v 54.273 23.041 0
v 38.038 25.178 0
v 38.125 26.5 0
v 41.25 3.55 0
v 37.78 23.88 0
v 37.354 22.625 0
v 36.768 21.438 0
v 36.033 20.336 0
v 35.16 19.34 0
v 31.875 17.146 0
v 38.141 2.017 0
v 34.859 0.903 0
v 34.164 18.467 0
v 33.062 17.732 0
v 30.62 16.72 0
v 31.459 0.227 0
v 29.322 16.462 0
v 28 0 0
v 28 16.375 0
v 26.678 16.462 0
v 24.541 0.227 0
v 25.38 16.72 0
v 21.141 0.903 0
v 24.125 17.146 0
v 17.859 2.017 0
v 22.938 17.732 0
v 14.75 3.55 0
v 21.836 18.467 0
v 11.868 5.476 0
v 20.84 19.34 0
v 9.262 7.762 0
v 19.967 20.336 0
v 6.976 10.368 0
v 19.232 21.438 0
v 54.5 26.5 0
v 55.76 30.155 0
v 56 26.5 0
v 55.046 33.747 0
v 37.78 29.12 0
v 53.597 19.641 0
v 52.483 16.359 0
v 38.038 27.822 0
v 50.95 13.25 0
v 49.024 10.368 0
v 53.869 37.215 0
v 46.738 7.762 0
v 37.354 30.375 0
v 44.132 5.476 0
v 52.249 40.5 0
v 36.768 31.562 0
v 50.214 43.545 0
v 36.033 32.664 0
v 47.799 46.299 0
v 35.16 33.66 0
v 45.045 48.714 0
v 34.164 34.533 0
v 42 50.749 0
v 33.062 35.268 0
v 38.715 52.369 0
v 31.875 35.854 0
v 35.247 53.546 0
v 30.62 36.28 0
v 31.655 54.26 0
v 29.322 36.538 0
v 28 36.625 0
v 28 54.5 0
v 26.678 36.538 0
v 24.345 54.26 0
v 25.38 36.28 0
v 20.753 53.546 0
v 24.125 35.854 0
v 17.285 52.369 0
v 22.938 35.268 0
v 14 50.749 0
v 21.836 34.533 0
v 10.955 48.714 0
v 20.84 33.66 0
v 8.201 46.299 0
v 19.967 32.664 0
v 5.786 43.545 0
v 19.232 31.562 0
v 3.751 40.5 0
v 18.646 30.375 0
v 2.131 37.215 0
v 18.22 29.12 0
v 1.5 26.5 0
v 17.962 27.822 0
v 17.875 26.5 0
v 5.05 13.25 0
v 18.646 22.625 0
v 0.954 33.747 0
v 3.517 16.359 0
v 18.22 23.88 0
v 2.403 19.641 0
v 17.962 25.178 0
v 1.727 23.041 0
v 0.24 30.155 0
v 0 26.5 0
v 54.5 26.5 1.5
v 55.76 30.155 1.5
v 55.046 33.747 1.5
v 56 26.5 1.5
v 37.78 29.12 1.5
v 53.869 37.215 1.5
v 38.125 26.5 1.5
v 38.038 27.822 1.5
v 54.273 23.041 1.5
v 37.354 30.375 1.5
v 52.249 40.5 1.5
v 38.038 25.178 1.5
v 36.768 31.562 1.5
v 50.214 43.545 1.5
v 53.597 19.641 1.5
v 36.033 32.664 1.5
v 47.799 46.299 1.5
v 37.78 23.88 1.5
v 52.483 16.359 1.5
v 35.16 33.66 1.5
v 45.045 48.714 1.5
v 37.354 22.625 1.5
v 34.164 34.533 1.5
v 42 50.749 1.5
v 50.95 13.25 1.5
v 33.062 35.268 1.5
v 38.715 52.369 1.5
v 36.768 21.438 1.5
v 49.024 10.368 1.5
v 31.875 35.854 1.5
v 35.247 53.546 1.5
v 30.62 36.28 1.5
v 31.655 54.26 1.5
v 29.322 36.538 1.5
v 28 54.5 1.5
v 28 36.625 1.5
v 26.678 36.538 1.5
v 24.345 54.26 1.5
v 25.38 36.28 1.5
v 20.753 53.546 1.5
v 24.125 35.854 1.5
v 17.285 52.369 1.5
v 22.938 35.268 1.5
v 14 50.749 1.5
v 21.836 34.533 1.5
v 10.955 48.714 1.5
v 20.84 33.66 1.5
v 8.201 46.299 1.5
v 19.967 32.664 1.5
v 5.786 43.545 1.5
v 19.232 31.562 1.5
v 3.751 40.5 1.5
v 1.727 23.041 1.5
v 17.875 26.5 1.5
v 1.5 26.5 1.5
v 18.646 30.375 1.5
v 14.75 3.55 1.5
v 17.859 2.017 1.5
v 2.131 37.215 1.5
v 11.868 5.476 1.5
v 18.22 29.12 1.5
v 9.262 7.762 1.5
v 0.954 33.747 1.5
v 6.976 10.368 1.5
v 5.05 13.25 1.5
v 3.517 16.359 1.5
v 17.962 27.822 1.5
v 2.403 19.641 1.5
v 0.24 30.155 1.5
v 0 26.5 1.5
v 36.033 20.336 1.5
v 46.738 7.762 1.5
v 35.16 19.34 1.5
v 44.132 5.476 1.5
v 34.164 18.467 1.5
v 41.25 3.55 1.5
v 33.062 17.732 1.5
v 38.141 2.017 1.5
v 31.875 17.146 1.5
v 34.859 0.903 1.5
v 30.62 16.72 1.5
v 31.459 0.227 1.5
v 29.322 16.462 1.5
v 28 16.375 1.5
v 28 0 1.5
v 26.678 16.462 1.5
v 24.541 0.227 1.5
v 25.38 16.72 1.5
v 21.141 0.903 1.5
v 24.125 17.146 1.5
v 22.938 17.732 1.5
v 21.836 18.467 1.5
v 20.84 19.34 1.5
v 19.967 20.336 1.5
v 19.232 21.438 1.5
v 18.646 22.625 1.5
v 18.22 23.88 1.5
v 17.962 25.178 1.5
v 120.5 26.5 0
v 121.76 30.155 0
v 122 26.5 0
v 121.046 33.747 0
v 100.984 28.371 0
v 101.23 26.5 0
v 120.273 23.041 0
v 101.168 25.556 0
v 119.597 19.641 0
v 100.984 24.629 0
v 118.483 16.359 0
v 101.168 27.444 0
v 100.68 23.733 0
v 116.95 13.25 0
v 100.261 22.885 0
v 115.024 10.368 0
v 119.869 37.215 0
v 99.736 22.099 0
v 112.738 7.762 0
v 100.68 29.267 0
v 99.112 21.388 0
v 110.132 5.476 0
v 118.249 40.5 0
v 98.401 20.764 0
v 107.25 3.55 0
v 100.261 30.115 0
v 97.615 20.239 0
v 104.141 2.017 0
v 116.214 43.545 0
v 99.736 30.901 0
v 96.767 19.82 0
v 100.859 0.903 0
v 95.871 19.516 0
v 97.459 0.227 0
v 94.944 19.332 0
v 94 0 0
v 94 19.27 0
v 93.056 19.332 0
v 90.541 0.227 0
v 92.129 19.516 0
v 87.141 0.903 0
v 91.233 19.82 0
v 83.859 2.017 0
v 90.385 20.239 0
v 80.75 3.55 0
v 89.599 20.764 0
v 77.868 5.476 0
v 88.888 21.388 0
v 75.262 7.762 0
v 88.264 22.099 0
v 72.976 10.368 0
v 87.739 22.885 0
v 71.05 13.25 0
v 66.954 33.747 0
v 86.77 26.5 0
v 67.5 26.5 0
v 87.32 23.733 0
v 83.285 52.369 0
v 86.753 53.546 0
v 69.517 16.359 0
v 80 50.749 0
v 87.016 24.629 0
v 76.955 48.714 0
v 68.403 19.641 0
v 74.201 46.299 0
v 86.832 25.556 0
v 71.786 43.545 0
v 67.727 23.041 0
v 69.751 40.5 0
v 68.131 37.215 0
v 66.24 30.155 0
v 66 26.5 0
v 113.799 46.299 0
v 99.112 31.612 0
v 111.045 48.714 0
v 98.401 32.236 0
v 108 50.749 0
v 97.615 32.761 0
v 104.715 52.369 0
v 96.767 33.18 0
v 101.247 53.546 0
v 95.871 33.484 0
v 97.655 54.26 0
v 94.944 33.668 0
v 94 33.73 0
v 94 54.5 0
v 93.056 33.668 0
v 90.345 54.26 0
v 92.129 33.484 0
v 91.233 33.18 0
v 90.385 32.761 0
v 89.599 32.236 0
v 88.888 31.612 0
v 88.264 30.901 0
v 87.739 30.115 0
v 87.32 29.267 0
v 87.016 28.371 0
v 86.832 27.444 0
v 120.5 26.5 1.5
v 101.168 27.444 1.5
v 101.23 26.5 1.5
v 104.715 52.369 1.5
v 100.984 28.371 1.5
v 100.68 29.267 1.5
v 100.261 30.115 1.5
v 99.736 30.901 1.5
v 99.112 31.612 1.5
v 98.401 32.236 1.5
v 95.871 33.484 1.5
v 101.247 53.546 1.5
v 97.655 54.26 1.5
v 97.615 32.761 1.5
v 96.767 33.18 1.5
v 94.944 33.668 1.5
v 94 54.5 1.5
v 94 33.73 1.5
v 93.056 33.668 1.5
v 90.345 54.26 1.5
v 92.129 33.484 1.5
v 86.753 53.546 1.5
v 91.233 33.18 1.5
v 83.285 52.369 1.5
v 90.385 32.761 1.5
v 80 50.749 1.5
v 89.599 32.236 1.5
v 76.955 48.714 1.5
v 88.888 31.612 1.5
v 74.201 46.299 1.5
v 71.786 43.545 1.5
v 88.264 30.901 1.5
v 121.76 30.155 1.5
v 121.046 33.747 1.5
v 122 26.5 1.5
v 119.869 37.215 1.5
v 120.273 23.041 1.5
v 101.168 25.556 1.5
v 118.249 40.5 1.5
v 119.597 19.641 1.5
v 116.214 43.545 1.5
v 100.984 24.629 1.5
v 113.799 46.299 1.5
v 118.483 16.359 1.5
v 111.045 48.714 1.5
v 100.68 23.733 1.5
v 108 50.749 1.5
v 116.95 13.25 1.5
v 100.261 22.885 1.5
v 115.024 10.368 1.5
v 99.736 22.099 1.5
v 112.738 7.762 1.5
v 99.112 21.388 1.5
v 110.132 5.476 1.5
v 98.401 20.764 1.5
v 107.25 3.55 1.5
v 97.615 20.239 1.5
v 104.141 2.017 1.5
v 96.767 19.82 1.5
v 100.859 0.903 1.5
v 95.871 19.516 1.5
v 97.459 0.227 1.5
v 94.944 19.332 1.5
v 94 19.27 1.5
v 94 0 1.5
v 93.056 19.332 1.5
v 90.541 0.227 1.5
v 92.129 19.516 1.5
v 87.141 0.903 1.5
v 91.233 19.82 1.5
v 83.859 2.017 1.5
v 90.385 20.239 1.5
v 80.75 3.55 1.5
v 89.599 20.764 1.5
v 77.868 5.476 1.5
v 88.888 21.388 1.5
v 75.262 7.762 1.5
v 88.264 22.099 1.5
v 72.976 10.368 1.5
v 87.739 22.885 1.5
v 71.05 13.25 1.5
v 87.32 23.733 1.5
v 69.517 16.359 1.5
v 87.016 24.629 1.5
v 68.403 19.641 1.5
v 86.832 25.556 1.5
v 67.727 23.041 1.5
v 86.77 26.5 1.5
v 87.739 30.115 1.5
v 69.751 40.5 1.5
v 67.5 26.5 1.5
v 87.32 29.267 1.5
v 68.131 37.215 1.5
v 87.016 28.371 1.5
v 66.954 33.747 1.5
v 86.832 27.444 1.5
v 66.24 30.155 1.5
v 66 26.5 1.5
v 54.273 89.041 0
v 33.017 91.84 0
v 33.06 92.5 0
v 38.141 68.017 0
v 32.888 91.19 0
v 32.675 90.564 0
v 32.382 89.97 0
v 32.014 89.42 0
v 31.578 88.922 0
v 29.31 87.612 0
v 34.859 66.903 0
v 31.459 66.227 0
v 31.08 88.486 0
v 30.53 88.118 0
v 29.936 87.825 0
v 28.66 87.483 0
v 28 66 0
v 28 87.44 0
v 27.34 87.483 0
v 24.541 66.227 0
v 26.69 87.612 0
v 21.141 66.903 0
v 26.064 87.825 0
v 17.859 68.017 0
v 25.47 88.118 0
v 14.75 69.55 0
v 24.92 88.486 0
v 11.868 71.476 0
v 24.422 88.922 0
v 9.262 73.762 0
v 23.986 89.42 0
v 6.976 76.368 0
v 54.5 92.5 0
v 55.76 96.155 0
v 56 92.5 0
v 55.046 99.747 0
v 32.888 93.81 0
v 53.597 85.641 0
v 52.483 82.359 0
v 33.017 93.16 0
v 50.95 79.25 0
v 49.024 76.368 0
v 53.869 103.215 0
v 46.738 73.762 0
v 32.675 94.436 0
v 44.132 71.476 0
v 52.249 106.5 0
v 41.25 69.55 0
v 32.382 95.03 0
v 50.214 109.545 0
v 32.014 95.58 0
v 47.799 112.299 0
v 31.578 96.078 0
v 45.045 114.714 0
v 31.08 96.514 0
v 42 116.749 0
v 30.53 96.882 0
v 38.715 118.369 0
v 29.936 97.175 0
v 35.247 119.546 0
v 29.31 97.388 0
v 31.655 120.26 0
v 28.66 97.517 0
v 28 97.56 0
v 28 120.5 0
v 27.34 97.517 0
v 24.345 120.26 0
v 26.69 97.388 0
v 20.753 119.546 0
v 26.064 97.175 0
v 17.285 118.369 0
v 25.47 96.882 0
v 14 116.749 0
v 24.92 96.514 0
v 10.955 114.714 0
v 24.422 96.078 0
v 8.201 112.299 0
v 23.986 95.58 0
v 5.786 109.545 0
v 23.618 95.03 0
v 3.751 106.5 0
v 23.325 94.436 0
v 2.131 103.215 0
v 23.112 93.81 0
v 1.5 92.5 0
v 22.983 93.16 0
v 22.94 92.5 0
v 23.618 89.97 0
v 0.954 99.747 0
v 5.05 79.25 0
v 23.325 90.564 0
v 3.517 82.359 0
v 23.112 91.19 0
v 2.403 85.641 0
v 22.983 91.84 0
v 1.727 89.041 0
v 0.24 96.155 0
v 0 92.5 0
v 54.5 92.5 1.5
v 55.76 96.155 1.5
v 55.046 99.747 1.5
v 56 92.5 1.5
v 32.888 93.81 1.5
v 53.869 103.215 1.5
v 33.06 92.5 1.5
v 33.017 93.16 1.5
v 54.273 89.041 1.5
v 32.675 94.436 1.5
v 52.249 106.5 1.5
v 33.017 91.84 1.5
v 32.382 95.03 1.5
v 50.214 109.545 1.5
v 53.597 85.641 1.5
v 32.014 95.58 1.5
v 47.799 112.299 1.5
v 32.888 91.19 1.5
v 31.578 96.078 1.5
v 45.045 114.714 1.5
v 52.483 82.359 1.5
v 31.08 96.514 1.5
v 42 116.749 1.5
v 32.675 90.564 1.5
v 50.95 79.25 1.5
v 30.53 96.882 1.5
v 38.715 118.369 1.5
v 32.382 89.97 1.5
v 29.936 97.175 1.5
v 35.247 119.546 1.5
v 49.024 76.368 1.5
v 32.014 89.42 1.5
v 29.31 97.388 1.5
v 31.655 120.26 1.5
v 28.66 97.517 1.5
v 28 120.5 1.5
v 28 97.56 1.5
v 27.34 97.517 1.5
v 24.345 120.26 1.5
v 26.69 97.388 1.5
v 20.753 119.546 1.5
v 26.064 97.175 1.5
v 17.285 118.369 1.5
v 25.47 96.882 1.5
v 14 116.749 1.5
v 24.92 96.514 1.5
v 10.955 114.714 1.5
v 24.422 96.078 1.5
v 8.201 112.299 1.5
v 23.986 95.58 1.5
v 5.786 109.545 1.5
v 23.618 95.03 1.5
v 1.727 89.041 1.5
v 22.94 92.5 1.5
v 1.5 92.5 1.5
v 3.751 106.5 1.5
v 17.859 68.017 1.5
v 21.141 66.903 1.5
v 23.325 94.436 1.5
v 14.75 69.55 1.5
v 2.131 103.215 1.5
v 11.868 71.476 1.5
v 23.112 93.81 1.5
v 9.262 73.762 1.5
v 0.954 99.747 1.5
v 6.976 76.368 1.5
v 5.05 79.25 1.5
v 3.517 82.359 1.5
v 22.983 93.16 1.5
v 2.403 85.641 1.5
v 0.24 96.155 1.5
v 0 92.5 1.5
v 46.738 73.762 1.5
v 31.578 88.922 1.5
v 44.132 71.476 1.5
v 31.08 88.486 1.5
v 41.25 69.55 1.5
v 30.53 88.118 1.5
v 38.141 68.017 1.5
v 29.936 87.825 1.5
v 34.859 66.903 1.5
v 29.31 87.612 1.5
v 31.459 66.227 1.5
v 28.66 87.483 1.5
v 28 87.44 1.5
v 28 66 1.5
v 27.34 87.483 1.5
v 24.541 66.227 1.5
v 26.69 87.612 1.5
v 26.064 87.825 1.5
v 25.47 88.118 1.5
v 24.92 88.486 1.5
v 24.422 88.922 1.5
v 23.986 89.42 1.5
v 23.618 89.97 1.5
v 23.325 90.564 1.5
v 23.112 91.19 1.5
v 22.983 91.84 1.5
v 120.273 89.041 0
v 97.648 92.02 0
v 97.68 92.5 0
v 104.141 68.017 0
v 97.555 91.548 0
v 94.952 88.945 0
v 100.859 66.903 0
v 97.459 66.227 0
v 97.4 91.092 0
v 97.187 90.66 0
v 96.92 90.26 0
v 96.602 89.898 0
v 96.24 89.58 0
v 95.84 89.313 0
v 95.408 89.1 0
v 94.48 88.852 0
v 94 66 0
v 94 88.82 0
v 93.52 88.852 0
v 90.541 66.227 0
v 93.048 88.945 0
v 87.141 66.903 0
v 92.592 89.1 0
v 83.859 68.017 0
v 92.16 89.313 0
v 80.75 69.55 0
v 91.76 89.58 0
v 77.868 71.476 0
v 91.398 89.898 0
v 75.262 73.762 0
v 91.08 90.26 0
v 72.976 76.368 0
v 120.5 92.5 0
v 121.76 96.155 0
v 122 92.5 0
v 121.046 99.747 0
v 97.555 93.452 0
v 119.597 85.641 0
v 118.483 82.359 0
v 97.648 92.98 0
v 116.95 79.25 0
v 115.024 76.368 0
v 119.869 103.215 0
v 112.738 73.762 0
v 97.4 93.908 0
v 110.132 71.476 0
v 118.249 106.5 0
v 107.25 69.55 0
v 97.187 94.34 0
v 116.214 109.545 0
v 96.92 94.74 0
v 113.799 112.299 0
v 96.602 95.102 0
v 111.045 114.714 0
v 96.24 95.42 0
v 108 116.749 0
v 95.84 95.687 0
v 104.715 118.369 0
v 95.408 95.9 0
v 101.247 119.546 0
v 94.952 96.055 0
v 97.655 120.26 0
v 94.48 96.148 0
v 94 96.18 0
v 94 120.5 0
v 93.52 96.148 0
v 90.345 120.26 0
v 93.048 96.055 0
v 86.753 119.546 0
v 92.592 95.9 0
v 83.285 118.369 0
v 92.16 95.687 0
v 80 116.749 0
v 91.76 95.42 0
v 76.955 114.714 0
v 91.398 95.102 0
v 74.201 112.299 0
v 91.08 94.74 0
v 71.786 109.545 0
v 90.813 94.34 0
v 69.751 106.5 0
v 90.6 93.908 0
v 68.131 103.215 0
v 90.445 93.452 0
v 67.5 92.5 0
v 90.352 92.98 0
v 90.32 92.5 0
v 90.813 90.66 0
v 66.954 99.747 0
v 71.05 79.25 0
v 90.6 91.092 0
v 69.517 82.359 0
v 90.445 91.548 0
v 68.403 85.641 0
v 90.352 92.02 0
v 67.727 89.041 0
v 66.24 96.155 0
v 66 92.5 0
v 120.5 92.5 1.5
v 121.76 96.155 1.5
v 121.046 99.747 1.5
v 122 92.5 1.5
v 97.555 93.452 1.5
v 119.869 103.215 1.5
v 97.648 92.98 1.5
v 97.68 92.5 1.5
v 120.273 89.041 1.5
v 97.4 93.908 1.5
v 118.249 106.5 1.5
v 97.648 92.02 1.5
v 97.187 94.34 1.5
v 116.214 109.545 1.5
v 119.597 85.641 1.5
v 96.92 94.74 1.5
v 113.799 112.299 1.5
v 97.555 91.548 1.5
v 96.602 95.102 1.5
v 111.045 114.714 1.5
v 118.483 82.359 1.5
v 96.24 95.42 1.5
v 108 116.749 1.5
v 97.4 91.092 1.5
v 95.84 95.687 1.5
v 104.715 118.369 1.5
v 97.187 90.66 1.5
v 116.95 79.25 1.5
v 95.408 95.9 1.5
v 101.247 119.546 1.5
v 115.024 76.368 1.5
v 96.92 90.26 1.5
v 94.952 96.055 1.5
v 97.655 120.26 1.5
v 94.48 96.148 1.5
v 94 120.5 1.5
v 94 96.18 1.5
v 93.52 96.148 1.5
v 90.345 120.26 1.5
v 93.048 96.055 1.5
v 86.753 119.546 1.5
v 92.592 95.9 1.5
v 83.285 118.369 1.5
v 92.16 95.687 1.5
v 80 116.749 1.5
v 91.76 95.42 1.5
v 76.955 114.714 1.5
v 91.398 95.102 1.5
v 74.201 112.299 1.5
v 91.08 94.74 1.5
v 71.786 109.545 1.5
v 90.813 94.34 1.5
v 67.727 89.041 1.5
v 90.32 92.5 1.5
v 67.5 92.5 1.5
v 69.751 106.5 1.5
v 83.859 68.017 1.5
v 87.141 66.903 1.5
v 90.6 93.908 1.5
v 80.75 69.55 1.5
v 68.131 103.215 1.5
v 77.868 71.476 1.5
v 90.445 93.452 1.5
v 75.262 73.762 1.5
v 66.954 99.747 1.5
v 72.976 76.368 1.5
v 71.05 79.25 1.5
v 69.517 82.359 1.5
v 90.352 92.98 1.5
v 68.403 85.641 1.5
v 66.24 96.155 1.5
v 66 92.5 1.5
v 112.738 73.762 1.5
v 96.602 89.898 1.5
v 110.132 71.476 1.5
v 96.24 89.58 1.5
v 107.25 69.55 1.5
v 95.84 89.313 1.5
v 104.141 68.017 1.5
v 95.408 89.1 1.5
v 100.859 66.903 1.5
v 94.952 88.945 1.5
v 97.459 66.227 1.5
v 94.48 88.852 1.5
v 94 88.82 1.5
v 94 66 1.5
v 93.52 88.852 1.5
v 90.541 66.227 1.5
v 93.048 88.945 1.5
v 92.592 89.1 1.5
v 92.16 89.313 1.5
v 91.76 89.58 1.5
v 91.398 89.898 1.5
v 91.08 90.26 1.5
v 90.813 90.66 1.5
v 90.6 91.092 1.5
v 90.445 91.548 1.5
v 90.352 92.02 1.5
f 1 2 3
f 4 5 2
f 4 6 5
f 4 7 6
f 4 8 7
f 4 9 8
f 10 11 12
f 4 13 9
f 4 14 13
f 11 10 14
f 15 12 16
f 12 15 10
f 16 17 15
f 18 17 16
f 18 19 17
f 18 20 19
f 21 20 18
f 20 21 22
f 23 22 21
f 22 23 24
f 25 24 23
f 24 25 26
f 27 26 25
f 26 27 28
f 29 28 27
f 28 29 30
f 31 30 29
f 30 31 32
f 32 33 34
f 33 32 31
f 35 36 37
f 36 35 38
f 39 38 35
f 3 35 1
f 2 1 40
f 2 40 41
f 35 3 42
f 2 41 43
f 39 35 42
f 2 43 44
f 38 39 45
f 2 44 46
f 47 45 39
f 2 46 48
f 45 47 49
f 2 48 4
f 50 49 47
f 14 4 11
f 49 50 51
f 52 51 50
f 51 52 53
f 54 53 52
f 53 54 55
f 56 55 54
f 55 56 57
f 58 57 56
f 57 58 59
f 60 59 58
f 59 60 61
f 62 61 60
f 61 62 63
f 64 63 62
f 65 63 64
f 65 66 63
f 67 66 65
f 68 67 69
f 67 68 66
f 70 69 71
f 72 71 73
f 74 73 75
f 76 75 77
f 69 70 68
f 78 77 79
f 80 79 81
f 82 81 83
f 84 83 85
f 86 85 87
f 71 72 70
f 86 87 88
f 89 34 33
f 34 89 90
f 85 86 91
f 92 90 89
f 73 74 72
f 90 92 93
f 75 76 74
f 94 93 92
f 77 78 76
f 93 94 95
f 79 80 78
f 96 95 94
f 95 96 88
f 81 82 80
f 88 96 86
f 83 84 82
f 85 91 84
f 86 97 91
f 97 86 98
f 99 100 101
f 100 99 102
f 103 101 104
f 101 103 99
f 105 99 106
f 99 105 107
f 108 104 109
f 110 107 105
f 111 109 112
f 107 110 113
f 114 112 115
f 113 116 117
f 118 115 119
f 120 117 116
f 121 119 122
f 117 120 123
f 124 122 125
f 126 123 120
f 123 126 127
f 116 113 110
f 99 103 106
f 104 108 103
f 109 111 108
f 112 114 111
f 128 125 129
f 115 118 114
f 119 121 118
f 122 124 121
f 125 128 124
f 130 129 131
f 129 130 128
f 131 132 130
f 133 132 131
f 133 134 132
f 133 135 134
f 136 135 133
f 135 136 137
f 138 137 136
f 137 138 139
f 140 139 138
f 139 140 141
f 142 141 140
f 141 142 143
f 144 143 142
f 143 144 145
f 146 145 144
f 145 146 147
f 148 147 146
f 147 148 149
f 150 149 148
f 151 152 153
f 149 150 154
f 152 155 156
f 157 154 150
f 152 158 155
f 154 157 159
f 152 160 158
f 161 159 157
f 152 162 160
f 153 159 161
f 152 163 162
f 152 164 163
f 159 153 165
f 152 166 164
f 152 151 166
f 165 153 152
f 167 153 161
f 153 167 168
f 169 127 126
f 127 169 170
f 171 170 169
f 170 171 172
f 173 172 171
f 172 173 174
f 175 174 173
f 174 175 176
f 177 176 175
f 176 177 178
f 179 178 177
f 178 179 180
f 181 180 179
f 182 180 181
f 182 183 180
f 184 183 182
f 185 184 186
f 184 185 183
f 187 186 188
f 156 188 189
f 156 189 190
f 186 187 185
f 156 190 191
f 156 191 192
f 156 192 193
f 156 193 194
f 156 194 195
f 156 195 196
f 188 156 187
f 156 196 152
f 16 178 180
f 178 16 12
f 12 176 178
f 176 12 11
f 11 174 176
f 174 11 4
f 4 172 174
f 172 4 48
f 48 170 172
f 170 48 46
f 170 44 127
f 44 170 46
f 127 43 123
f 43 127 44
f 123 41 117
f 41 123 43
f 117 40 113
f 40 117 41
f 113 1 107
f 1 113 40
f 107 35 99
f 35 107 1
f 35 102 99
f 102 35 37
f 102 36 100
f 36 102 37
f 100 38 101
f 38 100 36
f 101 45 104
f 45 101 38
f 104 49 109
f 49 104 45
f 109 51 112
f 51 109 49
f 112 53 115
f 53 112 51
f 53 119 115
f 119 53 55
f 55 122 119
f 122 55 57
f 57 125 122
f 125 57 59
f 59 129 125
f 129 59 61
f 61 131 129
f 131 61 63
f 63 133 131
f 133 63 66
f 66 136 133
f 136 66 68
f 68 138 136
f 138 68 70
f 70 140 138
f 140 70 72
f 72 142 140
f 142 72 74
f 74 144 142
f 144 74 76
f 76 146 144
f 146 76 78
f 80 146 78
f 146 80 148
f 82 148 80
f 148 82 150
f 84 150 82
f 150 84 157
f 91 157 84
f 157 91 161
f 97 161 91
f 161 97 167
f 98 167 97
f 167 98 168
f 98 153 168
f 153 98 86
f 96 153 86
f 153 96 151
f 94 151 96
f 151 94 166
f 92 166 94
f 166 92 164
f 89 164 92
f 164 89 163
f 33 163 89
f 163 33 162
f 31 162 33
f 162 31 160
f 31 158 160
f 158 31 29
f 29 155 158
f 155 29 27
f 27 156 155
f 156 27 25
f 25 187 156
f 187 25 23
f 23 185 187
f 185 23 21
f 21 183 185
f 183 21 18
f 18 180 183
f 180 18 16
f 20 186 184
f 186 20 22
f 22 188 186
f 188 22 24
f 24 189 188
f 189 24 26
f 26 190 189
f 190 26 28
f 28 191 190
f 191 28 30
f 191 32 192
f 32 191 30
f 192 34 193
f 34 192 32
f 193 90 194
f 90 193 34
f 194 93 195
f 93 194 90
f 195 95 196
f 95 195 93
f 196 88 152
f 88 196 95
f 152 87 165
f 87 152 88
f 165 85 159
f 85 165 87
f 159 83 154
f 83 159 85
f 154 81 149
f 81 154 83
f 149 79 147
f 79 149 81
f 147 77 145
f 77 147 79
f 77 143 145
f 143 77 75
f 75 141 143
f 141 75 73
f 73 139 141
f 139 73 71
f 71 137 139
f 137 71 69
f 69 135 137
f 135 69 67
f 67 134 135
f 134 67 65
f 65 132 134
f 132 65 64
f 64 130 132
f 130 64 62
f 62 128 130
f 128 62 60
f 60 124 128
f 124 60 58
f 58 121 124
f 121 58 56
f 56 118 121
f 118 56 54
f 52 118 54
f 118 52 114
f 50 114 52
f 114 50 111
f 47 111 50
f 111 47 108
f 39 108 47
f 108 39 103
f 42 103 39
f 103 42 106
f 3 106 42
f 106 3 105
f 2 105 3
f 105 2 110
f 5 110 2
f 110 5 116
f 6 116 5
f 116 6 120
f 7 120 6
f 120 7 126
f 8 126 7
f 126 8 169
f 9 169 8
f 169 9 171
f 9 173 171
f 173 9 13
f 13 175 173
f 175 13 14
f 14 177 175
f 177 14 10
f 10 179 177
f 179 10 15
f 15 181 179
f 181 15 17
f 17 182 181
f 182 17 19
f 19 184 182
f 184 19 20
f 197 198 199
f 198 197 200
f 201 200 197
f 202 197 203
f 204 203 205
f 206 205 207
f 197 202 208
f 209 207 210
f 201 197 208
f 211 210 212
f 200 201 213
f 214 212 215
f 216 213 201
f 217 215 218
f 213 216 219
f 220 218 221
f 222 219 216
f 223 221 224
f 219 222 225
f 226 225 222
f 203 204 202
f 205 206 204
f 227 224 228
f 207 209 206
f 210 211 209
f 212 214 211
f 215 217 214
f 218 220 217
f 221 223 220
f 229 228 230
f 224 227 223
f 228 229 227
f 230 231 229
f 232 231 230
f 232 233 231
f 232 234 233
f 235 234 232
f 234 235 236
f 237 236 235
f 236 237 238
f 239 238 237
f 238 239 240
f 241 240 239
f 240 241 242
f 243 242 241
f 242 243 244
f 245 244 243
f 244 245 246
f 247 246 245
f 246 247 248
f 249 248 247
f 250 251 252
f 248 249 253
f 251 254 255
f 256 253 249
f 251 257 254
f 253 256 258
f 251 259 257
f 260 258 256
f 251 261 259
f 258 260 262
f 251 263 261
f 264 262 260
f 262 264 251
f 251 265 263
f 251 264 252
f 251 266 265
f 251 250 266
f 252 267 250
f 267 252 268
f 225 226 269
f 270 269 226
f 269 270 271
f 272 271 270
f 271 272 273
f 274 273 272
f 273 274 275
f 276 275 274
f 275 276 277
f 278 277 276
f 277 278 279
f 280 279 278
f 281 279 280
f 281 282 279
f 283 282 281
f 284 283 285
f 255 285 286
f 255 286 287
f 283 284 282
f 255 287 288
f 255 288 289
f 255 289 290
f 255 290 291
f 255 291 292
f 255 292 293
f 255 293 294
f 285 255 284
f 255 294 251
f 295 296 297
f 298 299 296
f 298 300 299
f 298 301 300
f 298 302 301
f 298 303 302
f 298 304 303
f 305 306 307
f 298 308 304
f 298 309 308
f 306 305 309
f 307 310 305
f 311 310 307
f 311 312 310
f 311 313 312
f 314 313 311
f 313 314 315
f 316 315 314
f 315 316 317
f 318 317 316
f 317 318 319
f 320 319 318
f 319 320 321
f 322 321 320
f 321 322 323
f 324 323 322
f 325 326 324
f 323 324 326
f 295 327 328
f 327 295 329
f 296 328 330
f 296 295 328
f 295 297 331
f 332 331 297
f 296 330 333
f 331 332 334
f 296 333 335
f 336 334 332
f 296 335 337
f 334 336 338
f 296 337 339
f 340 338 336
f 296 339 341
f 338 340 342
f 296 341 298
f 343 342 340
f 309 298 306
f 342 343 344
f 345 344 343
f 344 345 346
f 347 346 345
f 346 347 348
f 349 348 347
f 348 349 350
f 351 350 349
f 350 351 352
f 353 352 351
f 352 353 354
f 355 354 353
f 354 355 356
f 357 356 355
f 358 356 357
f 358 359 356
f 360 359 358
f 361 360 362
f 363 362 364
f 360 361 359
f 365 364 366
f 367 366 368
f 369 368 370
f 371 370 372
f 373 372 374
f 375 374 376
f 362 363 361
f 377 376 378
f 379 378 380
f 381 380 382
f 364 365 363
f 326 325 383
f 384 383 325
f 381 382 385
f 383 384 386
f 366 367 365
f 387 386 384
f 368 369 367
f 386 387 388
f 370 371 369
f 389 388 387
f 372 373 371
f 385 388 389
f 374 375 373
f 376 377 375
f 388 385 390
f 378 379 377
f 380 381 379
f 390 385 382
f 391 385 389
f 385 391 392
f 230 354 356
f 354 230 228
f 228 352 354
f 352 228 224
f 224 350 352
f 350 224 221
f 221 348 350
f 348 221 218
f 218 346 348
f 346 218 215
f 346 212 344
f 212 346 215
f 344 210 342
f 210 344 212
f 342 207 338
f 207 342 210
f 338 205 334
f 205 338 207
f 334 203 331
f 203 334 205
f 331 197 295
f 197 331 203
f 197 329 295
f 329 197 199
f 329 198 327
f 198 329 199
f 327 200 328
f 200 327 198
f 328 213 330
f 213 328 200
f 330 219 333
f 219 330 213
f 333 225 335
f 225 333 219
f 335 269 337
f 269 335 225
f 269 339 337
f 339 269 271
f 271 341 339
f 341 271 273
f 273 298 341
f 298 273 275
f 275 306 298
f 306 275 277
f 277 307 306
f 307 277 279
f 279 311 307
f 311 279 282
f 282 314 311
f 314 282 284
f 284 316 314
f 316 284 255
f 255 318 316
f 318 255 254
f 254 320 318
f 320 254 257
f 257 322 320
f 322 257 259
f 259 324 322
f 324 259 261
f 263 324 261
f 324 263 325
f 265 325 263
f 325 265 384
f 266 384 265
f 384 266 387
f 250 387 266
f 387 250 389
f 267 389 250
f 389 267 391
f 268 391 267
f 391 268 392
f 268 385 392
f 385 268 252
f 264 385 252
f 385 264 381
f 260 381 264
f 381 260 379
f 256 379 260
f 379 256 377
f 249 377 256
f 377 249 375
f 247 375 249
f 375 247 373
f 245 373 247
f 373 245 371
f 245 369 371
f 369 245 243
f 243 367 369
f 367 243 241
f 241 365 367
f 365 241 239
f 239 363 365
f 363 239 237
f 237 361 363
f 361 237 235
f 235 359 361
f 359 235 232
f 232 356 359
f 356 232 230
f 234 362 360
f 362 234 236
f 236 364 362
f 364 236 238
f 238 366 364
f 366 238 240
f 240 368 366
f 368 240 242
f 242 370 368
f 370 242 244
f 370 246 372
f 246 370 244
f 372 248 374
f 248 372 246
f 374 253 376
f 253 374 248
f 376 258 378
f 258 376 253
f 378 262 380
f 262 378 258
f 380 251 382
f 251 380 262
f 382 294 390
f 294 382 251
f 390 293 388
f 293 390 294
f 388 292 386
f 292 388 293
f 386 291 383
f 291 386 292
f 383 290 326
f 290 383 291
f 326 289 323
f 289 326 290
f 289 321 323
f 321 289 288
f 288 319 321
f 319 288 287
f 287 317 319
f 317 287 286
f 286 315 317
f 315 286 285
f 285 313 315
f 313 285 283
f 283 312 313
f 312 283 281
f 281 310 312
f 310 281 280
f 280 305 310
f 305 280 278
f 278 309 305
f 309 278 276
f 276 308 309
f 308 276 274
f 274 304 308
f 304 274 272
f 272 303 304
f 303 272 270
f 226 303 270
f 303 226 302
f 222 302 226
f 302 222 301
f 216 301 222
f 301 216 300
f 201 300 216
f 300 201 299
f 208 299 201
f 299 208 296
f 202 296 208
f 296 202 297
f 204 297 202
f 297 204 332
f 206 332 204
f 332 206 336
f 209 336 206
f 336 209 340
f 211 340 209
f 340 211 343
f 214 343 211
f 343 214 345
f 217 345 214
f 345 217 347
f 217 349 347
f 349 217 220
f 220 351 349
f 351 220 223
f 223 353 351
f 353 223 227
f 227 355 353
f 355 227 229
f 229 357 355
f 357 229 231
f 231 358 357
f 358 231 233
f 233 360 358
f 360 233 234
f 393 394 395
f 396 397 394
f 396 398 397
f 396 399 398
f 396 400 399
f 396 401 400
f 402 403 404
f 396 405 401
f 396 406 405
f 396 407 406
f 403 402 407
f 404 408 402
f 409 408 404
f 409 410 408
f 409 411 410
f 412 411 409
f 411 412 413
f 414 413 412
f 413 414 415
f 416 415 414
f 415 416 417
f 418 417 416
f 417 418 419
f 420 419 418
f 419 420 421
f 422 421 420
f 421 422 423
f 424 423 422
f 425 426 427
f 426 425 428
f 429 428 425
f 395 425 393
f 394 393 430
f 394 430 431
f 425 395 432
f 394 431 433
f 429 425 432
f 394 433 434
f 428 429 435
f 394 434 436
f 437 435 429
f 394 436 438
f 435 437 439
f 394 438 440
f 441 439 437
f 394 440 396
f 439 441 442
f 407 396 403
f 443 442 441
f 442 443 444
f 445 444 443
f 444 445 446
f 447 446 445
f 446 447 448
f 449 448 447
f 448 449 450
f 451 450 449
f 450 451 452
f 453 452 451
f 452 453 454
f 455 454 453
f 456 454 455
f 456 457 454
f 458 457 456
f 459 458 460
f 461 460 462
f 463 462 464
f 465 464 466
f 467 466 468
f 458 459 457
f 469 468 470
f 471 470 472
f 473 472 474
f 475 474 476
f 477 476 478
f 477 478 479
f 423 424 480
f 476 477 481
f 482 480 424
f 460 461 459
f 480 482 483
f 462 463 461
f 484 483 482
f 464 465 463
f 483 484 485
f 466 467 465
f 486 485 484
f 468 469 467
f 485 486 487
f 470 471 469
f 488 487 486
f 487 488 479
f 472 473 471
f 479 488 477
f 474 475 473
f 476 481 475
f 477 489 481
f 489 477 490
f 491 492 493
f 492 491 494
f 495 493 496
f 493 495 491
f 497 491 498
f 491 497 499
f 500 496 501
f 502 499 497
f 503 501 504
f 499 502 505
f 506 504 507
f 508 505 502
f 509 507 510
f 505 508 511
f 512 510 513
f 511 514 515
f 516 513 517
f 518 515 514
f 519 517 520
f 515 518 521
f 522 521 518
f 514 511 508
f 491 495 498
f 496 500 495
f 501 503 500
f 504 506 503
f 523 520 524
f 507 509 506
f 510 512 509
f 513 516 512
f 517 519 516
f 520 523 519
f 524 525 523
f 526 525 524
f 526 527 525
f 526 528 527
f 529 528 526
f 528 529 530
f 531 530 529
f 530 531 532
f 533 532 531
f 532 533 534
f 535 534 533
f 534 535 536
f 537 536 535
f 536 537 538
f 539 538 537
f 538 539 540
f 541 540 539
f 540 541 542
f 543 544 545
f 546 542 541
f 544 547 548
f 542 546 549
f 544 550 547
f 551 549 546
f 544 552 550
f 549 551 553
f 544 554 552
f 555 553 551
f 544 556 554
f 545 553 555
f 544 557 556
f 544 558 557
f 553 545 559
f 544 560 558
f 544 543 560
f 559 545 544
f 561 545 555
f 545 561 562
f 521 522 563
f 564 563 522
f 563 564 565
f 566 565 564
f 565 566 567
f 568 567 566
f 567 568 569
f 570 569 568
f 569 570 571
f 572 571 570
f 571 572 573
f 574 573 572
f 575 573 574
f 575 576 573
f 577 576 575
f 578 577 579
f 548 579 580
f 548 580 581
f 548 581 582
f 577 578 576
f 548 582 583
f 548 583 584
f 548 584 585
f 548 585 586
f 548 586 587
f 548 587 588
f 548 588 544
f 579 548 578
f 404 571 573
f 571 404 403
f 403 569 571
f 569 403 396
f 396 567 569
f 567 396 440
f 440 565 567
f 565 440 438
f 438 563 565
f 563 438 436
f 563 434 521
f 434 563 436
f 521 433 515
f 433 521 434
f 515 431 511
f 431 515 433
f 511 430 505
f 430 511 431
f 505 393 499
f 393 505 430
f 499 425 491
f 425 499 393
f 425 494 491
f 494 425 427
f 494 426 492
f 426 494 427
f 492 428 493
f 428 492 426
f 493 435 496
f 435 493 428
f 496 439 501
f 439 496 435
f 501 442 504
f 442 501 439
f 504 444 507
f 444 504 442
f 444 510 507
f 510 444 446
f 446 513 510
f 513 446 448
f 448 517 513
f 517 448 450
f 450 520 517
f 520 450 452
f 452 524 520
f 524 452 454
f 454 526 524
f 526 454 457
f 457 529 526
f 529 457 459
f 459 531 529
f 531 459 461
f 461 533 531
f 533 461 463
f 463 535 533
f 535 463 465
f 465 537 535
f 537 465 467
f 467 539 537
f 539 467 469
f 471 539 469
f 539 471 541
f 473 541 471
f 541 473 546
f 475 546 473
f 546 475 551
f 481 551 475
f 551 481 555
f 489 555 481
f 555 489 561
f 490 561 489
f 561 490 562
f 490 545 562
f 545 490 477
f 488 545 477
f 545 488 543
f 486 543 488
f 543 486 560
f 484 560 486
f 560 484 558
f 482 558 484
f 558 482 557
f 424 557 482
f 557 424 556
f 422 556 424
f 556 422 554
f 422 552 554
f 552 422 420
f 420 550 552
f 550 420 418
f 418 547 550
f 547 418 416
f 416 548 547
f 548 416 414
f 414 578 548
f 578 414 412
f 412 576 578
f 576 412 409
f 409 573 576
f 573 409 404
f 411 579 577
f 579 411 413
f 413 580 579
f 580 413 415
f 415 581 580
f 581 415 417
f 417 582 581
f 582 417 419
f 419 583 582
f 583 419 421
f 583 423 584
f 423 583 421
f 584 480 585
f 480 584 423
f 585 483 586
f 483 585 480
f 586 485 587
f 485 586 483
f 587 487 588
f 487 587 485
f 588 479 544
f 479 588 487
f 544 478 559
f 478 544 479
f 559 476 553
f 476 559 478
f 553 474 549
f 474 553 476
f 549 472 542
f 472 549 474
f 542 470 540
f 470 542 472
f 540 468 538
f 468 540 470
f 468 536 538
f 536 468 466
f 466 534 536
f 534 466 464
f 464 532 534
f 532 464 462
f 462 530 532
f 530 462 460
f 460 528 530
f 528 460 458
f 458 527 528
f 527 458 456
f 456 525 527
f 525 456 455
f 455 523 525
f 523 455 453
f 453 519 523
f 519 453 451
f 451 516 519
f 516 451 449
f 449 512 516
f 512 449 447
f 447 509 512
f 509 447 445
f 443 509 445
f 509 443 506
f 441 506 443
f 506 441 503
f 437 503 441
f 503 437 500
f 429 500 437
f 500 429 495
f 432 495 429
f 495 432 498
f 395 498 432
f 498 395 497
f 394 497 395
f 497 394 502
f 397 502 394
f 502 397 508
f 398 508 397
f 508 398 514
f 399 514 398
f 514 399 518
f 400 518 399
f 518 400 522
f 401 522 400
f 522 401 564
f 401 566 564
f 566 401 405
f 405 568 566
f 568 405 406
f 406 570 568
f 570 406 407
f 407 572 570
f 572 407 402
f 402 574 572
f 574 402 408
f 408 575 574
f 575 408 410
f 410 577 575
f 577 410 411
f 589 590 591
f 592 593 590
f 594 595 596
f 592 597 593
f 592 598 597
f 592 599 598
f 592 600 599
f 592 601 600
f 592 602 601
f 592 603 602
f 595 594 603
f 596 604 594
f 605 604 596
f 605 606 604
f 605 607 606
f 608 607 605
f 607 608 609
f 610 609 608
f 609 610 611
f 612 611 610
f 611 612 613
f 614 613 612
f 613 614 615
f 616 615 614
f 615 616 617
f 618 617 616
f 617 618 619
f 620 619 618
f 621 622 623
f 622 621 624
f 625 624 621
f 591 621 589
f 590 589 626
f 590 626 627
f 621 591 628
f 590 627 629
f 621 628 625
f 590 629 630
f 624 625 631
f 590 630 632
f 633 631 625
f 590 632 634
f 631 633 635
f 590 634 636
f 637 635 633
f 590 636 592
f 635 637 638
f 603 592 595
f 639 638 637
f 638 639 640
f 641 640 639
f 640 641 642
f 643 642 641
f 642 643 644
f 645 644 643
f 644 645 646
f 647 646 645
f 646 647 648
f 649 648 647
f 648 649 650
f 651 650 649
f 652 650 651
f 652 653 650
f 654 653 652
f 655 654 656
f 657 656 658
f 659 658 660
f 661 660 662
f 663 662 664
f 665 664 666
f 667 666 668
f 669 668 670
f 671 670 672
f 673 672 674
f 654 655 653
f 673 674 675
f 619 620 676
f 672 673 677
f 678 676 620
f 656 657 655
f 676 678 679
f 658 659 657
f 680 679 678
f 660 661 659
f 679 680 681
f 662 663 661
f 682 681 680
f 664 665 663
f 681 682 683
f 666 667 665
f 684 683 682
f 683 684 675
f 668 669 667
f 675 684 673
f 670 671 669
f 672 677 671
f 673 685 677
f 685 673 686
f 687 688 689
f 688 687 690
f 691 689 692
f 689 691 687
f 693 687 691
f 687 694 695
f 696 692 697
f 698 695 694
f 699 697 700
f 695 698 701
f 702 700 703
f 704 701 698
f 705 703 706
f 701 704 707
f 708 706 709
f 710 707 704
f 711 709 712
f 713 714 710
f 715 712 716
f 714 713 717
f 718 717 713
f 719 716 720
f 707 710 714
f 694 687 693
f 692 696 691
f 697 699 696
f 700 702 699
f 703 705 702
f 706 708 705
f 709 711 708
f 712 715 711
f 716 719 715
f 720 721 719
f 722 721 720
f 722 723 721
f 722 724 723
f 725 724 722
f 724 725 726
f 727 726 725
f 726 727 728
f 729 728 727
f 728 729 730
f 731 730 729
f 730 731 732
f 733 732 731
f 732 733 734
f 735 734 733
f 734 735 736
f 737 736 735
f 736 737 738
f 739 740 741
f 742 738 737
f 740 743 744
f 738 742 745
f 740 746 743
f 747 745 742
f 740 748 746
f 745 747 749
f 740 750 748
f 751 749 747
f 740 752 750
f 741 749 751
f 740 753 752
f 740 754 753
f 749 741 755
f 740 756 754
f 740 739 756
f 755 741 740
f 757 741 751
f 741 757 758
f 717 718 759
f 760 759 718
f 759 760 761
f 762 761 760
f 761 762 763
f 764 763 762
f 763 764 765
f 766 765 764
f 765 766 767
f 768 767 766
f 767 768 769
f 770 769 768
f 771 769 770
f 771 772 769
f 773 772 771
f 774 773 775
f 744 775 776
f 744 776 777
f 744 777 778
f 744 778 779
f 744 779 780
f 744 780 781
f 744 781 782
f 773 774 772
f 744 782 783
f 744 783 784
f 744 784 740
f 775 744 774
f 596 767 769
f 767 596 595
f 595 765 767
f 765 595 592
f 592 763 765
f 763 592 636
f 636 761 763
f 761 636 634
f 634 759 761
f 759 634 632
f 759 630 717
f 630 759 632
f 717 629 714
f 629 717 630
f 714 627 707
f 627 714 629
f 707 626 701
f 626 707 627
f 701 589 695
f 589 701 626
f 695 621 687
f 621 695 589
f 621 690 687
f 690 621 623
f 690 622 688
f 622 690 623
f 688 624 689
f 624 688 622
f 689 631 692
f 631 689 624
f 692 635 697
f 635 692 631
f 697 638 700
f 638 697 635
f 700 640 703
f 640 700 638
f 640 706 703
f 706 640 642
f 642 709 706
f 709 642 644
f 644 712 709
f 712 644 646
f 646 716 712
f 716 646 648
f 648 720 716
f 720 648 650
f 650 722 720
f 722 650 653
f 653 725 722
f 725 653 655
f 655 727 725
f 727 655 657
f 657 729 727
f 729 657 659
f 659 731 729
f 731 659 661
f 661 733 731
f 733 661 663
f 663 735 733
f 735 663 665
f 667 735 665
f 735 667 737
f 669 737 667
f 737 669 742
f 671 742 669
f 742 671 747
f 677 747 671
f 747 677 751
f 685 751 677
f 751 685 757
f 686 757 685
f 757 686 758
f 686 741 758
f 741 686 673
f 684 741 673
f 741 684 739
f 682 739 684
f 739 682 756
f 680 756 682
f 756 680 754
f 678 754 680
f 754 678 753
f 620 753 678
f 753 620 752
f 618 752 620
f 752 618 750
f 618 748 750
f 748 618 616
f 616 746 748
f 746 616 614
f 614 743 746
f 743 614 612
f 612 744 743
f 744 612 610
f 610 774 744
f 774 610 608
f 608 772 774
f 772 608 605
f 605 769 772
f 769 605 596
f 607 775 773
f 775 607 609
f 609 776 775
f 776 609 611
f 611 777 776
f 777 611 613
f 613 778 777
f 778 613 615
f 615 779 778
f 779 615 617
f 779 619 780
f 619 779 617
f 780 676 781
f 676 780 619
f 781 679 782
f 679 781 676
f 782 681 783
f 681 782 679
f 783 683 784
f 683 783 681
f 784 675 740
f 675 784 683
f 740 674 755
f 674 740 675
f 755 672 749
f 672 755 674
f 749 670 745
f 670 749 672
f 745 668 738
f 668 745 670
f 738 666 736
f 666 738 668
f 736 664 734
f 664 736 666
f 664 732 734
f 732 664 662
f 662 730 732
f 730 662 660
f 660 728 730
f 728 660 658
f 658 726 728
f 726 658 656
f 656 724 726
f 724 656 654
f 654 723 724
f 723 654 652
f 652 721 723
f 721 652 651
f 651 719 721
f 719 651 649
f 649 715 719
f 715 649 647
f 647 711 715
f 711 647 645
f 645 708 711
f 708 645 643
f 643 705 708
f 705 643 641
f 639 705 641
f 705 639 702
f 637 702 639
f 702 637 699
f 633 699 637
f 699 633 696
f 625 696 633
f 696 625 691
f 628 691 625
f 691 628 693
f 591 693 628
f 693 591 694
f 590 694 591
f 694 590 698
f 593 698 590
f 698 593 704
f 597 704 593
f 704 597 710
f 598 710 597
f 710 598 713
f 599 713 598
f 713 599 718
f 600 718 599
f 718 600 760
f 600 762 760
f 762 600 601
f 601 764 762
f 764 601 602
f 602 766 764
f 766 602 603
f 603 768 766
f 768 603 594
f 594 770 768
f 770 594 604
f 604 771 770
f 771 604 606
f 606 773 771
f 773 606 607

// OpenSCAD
// Generated by scadwright. Do not hand-edit —
// edit the Python source and regenerate.

$fn = 48;

translate([28, 26.5, 6.15]) {
    union() {
        translate([0, 0, 0]) {
            // WaterhouseStop
            //  hole_d         = 20.25  (input)
            //  inner_diameter = 53  (input)
            //  outer_diameter = 56  (input)
            //  spacing        = -5.4  (input)
            //  thk            = 1.5  (input)
            //  slot_bottom    = spacing - thk / 2 = -6.15
            color("red") {
                translate([0, 0, -6.15]) {
                    linear_extrude(height=1.5, center=false) {
                        difference() {
                            union() {
                                // Sector
                                //  angles = [0, 180]  (input)
                                //  r      = 28  (input)
                                intersection() {
                                    circle(r=28);
                                    polygon(points=[[0, 0], [56, 0], [3.42901e-15, 56], [-56, 6.85802e-15]]);
                                }
                                // Sector
                                //  angles = [180, 360]  (input)
                                //  r      = 26.5  (input)
                                intersection() {
                                    circle(r=26.5);
                                    polygon(points=[[0, 0], [-53, 6.49063e-15], [-9.73594e-15, -53], [53, -1.29813e-14]]);
                                }
                            }
                            circle(r=10.125);
                        }
                    }
                }
            }
        }
        translate([66, 0, 0]) {
            // WaterhouseStop
            //  hole_d         = 14.46  (input)
            //  inner_diameter = 53  (input)
            //  outer_diameter = 56  (input)
            //  spacing        = -5.4  (input)
            //  thk            = 1.5  (input)
            //  slot_bottom    = spacing - thk / 2 = -6.15
            color("red") {
                translate([0, 0, -6.15]) {
                    linear_extrude(height=1.5, center=false) {
                        difference() {
                            union() {
                                // Sector
                                //  angles = [0, 180]  (input)
                                //  r      = 28  (input)
                                intersection() {
                                    circle(r=28);
                                    polygon(points=[[0, 0], [56, 0], [3.42901e-15, 56], [-56, 6.85802e-15]]);
                                }
                                // Sector
                                //  angles = [180, 360]  (input)
                                //  r      = 26.5  (input)
                                intersection() {
                                    circle(r=26.5);
                                    polygon(points=[[0, 0], [-53, 6.49063e-15], [-9.73594e-15, -53], [53, -1.29813e-14]]);
                                }
                            }
                            circle(r=7.23);
                        }
                    }
                }
            }
        }
        translate([0, 66, 0]) {
            // WaterhouseStop
            //  hole_d         = 10.12  (input)
            //  inner_diameter = 53  (input)
            //  outer_diameter = 56  (input)
            //  spacing        = -5.4  (input)
            //  thk            = 1.5  (input)
            //  slot_bottom    = spacing - thk / 2 = -6.15
            color("red") {
                translate([0, 0, -6.15]) {
                    linear_extrude(height=1.5, center=false) {
                        difference() {
                            union() {
                                // Sector
                                //  angles = [0, 180]  (input)
                                //  r      = 28  (input)
                                intersection() {
                                    circle(r=28);
                                    polygon(points=[[0, 0], [56, 0], [3.42901e-15, 56], [-56, 6.85802e-15]]);
                                }
                                // Sector
                                //  angles = [180, 360]  (input)
                                //  r      = 26.5  (input)
                                intersection() {
                                    circle(r=26.5);
                                    polygon(points=[[0, 0], [-53, 6.49063e-15], [-9.73594e-15, -53], [53, -1.29813e-14]]);
                                }
                            }
                            circle(r=5.06);
                        }
                    }
                }
            }
        }
        translate([66, 66, 0]) {
            // WaterhouseStop
            //  hole_d         = 7.36  (input)
            //  inner_diameter = 53  (input)
            //  outer_diameter = 56  (input)
            //  spacing        = -5.4  (input)
            //  thk            = 1.5  (input)
            //  slot_bottom    = spacing - thk / 2 = -6.15
            color("red") {
                translate([0, 0, -6.15]) {
                    linear_extrude(height=1.5, center=false) {
                        difference() {
                            union() {
                                // Sector
                                //  angles = [0, 180]  (input)
                                //  r      = 28  (input)
                                intersection() {
                                    circle(r=28);
                                    polygon(points=[[0, 0], [56, 0], [3.42901e-15, 56], [-56, 6.85802e-15]]);
                                }
                                // Sector
                                //  angles = [180, 360]  (input)
                                //  r      = 26.5  (input)
                                intersection() {
                                    circle(r=26.5);
                                    polygon(points=[[0, 0], [-53, 6.49063e-15], [-9.73594e-15, -53], [53, -1.29813e-14]]);
                                }
                            }
                            circle(r=3.68);
                        }
                    }
                }
            }
        }
    }
}
